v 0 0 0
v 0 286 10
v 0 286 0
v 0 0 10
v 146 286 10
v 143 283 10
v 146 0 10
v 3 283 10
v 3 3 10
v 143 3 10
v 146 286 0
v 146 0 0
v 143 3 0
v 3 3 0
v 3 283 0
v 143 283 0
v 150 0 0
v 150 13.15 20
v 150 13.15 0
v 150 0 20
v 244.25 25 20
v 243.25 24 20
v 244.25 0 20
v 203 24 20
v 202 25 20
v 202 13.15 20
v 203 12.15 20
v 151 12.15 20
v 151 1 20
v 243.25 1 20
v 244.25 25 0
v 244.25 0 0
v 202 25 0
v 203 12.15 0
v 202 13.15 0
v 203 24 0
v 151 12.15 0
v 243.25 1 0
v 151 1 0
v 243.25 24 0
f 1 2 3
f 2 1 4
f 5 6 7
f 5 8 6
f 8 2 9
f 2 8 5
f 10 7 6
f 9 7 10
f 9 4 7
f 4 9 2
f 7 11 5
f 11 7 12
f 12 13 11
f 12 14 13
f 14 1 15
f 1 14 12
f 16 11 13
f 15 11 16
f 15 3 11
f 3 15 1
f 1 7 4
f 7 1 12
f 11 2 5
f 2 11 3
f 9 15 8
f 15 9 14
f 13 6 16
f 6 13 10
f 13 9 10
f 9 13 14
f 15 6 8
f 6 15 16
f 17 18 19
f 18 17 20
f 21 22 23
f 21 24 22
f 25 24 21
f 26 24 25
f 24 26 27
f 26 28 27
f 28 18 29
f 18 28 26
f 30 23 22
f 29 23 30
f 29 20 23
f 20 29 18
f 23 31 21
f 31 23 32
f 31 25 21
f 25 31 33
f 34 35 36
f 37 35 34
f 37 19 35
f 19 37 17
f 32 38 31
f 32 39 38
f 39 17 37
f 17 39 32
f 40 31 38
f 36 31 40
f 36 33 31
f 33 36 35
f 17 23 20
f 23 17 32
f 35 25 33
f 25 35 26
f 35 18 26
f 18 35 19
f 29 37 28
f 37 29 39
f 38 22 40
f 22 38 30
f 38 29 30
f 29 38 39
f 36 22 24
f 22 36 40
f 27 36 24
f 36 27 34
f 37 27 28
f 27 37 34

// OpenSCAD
// file: ../modules/grace3_duct_adapter.scad
include <../Round-Anything/polyround.scad>

module adapters() {
  MI50_Adapter();
  translate([150, 0, 0]) Two_140mm_Fan_Adapter();
}

module MI50_Adapter() {
  WALL = 6;
  FAN_SILUETTE = [140, 280, 10];
  difference() 
  {
    cube(FAN_SILUETTE + [WALL, WALL, 0]);
    translate([WALL/2, WALL/2, 0]) cube(FAN_SILUETTE);
  }
}

module Two_140mm_Fan_Adapter() {
  WALL = 2;
  MI50_SILUETTE = [94.25, 25, 20];
  MI50_NOTCH_SILUETTE = [52, 11.85, 20];
  difference() 
  {
    difference() 
    {
      cube(MI50_SILUETTE);
      translate([0, 13.15, 0]) cube(MI50_NOTCH_SILUETTE);
    }
    translate([WALL/2, WALL/2, 0]) difference() 
    {
      cube(MI50_SILUETTE - [WALL, WALL, 0]);
      translate([0, 13.15, 0] + [0, -WALL, 0]) cube(MI50_NOTCH_SILUETTE);
    }
  }
}
// main file
include <../modules/grace3_duct_adapter.scad>

render() adapters();
